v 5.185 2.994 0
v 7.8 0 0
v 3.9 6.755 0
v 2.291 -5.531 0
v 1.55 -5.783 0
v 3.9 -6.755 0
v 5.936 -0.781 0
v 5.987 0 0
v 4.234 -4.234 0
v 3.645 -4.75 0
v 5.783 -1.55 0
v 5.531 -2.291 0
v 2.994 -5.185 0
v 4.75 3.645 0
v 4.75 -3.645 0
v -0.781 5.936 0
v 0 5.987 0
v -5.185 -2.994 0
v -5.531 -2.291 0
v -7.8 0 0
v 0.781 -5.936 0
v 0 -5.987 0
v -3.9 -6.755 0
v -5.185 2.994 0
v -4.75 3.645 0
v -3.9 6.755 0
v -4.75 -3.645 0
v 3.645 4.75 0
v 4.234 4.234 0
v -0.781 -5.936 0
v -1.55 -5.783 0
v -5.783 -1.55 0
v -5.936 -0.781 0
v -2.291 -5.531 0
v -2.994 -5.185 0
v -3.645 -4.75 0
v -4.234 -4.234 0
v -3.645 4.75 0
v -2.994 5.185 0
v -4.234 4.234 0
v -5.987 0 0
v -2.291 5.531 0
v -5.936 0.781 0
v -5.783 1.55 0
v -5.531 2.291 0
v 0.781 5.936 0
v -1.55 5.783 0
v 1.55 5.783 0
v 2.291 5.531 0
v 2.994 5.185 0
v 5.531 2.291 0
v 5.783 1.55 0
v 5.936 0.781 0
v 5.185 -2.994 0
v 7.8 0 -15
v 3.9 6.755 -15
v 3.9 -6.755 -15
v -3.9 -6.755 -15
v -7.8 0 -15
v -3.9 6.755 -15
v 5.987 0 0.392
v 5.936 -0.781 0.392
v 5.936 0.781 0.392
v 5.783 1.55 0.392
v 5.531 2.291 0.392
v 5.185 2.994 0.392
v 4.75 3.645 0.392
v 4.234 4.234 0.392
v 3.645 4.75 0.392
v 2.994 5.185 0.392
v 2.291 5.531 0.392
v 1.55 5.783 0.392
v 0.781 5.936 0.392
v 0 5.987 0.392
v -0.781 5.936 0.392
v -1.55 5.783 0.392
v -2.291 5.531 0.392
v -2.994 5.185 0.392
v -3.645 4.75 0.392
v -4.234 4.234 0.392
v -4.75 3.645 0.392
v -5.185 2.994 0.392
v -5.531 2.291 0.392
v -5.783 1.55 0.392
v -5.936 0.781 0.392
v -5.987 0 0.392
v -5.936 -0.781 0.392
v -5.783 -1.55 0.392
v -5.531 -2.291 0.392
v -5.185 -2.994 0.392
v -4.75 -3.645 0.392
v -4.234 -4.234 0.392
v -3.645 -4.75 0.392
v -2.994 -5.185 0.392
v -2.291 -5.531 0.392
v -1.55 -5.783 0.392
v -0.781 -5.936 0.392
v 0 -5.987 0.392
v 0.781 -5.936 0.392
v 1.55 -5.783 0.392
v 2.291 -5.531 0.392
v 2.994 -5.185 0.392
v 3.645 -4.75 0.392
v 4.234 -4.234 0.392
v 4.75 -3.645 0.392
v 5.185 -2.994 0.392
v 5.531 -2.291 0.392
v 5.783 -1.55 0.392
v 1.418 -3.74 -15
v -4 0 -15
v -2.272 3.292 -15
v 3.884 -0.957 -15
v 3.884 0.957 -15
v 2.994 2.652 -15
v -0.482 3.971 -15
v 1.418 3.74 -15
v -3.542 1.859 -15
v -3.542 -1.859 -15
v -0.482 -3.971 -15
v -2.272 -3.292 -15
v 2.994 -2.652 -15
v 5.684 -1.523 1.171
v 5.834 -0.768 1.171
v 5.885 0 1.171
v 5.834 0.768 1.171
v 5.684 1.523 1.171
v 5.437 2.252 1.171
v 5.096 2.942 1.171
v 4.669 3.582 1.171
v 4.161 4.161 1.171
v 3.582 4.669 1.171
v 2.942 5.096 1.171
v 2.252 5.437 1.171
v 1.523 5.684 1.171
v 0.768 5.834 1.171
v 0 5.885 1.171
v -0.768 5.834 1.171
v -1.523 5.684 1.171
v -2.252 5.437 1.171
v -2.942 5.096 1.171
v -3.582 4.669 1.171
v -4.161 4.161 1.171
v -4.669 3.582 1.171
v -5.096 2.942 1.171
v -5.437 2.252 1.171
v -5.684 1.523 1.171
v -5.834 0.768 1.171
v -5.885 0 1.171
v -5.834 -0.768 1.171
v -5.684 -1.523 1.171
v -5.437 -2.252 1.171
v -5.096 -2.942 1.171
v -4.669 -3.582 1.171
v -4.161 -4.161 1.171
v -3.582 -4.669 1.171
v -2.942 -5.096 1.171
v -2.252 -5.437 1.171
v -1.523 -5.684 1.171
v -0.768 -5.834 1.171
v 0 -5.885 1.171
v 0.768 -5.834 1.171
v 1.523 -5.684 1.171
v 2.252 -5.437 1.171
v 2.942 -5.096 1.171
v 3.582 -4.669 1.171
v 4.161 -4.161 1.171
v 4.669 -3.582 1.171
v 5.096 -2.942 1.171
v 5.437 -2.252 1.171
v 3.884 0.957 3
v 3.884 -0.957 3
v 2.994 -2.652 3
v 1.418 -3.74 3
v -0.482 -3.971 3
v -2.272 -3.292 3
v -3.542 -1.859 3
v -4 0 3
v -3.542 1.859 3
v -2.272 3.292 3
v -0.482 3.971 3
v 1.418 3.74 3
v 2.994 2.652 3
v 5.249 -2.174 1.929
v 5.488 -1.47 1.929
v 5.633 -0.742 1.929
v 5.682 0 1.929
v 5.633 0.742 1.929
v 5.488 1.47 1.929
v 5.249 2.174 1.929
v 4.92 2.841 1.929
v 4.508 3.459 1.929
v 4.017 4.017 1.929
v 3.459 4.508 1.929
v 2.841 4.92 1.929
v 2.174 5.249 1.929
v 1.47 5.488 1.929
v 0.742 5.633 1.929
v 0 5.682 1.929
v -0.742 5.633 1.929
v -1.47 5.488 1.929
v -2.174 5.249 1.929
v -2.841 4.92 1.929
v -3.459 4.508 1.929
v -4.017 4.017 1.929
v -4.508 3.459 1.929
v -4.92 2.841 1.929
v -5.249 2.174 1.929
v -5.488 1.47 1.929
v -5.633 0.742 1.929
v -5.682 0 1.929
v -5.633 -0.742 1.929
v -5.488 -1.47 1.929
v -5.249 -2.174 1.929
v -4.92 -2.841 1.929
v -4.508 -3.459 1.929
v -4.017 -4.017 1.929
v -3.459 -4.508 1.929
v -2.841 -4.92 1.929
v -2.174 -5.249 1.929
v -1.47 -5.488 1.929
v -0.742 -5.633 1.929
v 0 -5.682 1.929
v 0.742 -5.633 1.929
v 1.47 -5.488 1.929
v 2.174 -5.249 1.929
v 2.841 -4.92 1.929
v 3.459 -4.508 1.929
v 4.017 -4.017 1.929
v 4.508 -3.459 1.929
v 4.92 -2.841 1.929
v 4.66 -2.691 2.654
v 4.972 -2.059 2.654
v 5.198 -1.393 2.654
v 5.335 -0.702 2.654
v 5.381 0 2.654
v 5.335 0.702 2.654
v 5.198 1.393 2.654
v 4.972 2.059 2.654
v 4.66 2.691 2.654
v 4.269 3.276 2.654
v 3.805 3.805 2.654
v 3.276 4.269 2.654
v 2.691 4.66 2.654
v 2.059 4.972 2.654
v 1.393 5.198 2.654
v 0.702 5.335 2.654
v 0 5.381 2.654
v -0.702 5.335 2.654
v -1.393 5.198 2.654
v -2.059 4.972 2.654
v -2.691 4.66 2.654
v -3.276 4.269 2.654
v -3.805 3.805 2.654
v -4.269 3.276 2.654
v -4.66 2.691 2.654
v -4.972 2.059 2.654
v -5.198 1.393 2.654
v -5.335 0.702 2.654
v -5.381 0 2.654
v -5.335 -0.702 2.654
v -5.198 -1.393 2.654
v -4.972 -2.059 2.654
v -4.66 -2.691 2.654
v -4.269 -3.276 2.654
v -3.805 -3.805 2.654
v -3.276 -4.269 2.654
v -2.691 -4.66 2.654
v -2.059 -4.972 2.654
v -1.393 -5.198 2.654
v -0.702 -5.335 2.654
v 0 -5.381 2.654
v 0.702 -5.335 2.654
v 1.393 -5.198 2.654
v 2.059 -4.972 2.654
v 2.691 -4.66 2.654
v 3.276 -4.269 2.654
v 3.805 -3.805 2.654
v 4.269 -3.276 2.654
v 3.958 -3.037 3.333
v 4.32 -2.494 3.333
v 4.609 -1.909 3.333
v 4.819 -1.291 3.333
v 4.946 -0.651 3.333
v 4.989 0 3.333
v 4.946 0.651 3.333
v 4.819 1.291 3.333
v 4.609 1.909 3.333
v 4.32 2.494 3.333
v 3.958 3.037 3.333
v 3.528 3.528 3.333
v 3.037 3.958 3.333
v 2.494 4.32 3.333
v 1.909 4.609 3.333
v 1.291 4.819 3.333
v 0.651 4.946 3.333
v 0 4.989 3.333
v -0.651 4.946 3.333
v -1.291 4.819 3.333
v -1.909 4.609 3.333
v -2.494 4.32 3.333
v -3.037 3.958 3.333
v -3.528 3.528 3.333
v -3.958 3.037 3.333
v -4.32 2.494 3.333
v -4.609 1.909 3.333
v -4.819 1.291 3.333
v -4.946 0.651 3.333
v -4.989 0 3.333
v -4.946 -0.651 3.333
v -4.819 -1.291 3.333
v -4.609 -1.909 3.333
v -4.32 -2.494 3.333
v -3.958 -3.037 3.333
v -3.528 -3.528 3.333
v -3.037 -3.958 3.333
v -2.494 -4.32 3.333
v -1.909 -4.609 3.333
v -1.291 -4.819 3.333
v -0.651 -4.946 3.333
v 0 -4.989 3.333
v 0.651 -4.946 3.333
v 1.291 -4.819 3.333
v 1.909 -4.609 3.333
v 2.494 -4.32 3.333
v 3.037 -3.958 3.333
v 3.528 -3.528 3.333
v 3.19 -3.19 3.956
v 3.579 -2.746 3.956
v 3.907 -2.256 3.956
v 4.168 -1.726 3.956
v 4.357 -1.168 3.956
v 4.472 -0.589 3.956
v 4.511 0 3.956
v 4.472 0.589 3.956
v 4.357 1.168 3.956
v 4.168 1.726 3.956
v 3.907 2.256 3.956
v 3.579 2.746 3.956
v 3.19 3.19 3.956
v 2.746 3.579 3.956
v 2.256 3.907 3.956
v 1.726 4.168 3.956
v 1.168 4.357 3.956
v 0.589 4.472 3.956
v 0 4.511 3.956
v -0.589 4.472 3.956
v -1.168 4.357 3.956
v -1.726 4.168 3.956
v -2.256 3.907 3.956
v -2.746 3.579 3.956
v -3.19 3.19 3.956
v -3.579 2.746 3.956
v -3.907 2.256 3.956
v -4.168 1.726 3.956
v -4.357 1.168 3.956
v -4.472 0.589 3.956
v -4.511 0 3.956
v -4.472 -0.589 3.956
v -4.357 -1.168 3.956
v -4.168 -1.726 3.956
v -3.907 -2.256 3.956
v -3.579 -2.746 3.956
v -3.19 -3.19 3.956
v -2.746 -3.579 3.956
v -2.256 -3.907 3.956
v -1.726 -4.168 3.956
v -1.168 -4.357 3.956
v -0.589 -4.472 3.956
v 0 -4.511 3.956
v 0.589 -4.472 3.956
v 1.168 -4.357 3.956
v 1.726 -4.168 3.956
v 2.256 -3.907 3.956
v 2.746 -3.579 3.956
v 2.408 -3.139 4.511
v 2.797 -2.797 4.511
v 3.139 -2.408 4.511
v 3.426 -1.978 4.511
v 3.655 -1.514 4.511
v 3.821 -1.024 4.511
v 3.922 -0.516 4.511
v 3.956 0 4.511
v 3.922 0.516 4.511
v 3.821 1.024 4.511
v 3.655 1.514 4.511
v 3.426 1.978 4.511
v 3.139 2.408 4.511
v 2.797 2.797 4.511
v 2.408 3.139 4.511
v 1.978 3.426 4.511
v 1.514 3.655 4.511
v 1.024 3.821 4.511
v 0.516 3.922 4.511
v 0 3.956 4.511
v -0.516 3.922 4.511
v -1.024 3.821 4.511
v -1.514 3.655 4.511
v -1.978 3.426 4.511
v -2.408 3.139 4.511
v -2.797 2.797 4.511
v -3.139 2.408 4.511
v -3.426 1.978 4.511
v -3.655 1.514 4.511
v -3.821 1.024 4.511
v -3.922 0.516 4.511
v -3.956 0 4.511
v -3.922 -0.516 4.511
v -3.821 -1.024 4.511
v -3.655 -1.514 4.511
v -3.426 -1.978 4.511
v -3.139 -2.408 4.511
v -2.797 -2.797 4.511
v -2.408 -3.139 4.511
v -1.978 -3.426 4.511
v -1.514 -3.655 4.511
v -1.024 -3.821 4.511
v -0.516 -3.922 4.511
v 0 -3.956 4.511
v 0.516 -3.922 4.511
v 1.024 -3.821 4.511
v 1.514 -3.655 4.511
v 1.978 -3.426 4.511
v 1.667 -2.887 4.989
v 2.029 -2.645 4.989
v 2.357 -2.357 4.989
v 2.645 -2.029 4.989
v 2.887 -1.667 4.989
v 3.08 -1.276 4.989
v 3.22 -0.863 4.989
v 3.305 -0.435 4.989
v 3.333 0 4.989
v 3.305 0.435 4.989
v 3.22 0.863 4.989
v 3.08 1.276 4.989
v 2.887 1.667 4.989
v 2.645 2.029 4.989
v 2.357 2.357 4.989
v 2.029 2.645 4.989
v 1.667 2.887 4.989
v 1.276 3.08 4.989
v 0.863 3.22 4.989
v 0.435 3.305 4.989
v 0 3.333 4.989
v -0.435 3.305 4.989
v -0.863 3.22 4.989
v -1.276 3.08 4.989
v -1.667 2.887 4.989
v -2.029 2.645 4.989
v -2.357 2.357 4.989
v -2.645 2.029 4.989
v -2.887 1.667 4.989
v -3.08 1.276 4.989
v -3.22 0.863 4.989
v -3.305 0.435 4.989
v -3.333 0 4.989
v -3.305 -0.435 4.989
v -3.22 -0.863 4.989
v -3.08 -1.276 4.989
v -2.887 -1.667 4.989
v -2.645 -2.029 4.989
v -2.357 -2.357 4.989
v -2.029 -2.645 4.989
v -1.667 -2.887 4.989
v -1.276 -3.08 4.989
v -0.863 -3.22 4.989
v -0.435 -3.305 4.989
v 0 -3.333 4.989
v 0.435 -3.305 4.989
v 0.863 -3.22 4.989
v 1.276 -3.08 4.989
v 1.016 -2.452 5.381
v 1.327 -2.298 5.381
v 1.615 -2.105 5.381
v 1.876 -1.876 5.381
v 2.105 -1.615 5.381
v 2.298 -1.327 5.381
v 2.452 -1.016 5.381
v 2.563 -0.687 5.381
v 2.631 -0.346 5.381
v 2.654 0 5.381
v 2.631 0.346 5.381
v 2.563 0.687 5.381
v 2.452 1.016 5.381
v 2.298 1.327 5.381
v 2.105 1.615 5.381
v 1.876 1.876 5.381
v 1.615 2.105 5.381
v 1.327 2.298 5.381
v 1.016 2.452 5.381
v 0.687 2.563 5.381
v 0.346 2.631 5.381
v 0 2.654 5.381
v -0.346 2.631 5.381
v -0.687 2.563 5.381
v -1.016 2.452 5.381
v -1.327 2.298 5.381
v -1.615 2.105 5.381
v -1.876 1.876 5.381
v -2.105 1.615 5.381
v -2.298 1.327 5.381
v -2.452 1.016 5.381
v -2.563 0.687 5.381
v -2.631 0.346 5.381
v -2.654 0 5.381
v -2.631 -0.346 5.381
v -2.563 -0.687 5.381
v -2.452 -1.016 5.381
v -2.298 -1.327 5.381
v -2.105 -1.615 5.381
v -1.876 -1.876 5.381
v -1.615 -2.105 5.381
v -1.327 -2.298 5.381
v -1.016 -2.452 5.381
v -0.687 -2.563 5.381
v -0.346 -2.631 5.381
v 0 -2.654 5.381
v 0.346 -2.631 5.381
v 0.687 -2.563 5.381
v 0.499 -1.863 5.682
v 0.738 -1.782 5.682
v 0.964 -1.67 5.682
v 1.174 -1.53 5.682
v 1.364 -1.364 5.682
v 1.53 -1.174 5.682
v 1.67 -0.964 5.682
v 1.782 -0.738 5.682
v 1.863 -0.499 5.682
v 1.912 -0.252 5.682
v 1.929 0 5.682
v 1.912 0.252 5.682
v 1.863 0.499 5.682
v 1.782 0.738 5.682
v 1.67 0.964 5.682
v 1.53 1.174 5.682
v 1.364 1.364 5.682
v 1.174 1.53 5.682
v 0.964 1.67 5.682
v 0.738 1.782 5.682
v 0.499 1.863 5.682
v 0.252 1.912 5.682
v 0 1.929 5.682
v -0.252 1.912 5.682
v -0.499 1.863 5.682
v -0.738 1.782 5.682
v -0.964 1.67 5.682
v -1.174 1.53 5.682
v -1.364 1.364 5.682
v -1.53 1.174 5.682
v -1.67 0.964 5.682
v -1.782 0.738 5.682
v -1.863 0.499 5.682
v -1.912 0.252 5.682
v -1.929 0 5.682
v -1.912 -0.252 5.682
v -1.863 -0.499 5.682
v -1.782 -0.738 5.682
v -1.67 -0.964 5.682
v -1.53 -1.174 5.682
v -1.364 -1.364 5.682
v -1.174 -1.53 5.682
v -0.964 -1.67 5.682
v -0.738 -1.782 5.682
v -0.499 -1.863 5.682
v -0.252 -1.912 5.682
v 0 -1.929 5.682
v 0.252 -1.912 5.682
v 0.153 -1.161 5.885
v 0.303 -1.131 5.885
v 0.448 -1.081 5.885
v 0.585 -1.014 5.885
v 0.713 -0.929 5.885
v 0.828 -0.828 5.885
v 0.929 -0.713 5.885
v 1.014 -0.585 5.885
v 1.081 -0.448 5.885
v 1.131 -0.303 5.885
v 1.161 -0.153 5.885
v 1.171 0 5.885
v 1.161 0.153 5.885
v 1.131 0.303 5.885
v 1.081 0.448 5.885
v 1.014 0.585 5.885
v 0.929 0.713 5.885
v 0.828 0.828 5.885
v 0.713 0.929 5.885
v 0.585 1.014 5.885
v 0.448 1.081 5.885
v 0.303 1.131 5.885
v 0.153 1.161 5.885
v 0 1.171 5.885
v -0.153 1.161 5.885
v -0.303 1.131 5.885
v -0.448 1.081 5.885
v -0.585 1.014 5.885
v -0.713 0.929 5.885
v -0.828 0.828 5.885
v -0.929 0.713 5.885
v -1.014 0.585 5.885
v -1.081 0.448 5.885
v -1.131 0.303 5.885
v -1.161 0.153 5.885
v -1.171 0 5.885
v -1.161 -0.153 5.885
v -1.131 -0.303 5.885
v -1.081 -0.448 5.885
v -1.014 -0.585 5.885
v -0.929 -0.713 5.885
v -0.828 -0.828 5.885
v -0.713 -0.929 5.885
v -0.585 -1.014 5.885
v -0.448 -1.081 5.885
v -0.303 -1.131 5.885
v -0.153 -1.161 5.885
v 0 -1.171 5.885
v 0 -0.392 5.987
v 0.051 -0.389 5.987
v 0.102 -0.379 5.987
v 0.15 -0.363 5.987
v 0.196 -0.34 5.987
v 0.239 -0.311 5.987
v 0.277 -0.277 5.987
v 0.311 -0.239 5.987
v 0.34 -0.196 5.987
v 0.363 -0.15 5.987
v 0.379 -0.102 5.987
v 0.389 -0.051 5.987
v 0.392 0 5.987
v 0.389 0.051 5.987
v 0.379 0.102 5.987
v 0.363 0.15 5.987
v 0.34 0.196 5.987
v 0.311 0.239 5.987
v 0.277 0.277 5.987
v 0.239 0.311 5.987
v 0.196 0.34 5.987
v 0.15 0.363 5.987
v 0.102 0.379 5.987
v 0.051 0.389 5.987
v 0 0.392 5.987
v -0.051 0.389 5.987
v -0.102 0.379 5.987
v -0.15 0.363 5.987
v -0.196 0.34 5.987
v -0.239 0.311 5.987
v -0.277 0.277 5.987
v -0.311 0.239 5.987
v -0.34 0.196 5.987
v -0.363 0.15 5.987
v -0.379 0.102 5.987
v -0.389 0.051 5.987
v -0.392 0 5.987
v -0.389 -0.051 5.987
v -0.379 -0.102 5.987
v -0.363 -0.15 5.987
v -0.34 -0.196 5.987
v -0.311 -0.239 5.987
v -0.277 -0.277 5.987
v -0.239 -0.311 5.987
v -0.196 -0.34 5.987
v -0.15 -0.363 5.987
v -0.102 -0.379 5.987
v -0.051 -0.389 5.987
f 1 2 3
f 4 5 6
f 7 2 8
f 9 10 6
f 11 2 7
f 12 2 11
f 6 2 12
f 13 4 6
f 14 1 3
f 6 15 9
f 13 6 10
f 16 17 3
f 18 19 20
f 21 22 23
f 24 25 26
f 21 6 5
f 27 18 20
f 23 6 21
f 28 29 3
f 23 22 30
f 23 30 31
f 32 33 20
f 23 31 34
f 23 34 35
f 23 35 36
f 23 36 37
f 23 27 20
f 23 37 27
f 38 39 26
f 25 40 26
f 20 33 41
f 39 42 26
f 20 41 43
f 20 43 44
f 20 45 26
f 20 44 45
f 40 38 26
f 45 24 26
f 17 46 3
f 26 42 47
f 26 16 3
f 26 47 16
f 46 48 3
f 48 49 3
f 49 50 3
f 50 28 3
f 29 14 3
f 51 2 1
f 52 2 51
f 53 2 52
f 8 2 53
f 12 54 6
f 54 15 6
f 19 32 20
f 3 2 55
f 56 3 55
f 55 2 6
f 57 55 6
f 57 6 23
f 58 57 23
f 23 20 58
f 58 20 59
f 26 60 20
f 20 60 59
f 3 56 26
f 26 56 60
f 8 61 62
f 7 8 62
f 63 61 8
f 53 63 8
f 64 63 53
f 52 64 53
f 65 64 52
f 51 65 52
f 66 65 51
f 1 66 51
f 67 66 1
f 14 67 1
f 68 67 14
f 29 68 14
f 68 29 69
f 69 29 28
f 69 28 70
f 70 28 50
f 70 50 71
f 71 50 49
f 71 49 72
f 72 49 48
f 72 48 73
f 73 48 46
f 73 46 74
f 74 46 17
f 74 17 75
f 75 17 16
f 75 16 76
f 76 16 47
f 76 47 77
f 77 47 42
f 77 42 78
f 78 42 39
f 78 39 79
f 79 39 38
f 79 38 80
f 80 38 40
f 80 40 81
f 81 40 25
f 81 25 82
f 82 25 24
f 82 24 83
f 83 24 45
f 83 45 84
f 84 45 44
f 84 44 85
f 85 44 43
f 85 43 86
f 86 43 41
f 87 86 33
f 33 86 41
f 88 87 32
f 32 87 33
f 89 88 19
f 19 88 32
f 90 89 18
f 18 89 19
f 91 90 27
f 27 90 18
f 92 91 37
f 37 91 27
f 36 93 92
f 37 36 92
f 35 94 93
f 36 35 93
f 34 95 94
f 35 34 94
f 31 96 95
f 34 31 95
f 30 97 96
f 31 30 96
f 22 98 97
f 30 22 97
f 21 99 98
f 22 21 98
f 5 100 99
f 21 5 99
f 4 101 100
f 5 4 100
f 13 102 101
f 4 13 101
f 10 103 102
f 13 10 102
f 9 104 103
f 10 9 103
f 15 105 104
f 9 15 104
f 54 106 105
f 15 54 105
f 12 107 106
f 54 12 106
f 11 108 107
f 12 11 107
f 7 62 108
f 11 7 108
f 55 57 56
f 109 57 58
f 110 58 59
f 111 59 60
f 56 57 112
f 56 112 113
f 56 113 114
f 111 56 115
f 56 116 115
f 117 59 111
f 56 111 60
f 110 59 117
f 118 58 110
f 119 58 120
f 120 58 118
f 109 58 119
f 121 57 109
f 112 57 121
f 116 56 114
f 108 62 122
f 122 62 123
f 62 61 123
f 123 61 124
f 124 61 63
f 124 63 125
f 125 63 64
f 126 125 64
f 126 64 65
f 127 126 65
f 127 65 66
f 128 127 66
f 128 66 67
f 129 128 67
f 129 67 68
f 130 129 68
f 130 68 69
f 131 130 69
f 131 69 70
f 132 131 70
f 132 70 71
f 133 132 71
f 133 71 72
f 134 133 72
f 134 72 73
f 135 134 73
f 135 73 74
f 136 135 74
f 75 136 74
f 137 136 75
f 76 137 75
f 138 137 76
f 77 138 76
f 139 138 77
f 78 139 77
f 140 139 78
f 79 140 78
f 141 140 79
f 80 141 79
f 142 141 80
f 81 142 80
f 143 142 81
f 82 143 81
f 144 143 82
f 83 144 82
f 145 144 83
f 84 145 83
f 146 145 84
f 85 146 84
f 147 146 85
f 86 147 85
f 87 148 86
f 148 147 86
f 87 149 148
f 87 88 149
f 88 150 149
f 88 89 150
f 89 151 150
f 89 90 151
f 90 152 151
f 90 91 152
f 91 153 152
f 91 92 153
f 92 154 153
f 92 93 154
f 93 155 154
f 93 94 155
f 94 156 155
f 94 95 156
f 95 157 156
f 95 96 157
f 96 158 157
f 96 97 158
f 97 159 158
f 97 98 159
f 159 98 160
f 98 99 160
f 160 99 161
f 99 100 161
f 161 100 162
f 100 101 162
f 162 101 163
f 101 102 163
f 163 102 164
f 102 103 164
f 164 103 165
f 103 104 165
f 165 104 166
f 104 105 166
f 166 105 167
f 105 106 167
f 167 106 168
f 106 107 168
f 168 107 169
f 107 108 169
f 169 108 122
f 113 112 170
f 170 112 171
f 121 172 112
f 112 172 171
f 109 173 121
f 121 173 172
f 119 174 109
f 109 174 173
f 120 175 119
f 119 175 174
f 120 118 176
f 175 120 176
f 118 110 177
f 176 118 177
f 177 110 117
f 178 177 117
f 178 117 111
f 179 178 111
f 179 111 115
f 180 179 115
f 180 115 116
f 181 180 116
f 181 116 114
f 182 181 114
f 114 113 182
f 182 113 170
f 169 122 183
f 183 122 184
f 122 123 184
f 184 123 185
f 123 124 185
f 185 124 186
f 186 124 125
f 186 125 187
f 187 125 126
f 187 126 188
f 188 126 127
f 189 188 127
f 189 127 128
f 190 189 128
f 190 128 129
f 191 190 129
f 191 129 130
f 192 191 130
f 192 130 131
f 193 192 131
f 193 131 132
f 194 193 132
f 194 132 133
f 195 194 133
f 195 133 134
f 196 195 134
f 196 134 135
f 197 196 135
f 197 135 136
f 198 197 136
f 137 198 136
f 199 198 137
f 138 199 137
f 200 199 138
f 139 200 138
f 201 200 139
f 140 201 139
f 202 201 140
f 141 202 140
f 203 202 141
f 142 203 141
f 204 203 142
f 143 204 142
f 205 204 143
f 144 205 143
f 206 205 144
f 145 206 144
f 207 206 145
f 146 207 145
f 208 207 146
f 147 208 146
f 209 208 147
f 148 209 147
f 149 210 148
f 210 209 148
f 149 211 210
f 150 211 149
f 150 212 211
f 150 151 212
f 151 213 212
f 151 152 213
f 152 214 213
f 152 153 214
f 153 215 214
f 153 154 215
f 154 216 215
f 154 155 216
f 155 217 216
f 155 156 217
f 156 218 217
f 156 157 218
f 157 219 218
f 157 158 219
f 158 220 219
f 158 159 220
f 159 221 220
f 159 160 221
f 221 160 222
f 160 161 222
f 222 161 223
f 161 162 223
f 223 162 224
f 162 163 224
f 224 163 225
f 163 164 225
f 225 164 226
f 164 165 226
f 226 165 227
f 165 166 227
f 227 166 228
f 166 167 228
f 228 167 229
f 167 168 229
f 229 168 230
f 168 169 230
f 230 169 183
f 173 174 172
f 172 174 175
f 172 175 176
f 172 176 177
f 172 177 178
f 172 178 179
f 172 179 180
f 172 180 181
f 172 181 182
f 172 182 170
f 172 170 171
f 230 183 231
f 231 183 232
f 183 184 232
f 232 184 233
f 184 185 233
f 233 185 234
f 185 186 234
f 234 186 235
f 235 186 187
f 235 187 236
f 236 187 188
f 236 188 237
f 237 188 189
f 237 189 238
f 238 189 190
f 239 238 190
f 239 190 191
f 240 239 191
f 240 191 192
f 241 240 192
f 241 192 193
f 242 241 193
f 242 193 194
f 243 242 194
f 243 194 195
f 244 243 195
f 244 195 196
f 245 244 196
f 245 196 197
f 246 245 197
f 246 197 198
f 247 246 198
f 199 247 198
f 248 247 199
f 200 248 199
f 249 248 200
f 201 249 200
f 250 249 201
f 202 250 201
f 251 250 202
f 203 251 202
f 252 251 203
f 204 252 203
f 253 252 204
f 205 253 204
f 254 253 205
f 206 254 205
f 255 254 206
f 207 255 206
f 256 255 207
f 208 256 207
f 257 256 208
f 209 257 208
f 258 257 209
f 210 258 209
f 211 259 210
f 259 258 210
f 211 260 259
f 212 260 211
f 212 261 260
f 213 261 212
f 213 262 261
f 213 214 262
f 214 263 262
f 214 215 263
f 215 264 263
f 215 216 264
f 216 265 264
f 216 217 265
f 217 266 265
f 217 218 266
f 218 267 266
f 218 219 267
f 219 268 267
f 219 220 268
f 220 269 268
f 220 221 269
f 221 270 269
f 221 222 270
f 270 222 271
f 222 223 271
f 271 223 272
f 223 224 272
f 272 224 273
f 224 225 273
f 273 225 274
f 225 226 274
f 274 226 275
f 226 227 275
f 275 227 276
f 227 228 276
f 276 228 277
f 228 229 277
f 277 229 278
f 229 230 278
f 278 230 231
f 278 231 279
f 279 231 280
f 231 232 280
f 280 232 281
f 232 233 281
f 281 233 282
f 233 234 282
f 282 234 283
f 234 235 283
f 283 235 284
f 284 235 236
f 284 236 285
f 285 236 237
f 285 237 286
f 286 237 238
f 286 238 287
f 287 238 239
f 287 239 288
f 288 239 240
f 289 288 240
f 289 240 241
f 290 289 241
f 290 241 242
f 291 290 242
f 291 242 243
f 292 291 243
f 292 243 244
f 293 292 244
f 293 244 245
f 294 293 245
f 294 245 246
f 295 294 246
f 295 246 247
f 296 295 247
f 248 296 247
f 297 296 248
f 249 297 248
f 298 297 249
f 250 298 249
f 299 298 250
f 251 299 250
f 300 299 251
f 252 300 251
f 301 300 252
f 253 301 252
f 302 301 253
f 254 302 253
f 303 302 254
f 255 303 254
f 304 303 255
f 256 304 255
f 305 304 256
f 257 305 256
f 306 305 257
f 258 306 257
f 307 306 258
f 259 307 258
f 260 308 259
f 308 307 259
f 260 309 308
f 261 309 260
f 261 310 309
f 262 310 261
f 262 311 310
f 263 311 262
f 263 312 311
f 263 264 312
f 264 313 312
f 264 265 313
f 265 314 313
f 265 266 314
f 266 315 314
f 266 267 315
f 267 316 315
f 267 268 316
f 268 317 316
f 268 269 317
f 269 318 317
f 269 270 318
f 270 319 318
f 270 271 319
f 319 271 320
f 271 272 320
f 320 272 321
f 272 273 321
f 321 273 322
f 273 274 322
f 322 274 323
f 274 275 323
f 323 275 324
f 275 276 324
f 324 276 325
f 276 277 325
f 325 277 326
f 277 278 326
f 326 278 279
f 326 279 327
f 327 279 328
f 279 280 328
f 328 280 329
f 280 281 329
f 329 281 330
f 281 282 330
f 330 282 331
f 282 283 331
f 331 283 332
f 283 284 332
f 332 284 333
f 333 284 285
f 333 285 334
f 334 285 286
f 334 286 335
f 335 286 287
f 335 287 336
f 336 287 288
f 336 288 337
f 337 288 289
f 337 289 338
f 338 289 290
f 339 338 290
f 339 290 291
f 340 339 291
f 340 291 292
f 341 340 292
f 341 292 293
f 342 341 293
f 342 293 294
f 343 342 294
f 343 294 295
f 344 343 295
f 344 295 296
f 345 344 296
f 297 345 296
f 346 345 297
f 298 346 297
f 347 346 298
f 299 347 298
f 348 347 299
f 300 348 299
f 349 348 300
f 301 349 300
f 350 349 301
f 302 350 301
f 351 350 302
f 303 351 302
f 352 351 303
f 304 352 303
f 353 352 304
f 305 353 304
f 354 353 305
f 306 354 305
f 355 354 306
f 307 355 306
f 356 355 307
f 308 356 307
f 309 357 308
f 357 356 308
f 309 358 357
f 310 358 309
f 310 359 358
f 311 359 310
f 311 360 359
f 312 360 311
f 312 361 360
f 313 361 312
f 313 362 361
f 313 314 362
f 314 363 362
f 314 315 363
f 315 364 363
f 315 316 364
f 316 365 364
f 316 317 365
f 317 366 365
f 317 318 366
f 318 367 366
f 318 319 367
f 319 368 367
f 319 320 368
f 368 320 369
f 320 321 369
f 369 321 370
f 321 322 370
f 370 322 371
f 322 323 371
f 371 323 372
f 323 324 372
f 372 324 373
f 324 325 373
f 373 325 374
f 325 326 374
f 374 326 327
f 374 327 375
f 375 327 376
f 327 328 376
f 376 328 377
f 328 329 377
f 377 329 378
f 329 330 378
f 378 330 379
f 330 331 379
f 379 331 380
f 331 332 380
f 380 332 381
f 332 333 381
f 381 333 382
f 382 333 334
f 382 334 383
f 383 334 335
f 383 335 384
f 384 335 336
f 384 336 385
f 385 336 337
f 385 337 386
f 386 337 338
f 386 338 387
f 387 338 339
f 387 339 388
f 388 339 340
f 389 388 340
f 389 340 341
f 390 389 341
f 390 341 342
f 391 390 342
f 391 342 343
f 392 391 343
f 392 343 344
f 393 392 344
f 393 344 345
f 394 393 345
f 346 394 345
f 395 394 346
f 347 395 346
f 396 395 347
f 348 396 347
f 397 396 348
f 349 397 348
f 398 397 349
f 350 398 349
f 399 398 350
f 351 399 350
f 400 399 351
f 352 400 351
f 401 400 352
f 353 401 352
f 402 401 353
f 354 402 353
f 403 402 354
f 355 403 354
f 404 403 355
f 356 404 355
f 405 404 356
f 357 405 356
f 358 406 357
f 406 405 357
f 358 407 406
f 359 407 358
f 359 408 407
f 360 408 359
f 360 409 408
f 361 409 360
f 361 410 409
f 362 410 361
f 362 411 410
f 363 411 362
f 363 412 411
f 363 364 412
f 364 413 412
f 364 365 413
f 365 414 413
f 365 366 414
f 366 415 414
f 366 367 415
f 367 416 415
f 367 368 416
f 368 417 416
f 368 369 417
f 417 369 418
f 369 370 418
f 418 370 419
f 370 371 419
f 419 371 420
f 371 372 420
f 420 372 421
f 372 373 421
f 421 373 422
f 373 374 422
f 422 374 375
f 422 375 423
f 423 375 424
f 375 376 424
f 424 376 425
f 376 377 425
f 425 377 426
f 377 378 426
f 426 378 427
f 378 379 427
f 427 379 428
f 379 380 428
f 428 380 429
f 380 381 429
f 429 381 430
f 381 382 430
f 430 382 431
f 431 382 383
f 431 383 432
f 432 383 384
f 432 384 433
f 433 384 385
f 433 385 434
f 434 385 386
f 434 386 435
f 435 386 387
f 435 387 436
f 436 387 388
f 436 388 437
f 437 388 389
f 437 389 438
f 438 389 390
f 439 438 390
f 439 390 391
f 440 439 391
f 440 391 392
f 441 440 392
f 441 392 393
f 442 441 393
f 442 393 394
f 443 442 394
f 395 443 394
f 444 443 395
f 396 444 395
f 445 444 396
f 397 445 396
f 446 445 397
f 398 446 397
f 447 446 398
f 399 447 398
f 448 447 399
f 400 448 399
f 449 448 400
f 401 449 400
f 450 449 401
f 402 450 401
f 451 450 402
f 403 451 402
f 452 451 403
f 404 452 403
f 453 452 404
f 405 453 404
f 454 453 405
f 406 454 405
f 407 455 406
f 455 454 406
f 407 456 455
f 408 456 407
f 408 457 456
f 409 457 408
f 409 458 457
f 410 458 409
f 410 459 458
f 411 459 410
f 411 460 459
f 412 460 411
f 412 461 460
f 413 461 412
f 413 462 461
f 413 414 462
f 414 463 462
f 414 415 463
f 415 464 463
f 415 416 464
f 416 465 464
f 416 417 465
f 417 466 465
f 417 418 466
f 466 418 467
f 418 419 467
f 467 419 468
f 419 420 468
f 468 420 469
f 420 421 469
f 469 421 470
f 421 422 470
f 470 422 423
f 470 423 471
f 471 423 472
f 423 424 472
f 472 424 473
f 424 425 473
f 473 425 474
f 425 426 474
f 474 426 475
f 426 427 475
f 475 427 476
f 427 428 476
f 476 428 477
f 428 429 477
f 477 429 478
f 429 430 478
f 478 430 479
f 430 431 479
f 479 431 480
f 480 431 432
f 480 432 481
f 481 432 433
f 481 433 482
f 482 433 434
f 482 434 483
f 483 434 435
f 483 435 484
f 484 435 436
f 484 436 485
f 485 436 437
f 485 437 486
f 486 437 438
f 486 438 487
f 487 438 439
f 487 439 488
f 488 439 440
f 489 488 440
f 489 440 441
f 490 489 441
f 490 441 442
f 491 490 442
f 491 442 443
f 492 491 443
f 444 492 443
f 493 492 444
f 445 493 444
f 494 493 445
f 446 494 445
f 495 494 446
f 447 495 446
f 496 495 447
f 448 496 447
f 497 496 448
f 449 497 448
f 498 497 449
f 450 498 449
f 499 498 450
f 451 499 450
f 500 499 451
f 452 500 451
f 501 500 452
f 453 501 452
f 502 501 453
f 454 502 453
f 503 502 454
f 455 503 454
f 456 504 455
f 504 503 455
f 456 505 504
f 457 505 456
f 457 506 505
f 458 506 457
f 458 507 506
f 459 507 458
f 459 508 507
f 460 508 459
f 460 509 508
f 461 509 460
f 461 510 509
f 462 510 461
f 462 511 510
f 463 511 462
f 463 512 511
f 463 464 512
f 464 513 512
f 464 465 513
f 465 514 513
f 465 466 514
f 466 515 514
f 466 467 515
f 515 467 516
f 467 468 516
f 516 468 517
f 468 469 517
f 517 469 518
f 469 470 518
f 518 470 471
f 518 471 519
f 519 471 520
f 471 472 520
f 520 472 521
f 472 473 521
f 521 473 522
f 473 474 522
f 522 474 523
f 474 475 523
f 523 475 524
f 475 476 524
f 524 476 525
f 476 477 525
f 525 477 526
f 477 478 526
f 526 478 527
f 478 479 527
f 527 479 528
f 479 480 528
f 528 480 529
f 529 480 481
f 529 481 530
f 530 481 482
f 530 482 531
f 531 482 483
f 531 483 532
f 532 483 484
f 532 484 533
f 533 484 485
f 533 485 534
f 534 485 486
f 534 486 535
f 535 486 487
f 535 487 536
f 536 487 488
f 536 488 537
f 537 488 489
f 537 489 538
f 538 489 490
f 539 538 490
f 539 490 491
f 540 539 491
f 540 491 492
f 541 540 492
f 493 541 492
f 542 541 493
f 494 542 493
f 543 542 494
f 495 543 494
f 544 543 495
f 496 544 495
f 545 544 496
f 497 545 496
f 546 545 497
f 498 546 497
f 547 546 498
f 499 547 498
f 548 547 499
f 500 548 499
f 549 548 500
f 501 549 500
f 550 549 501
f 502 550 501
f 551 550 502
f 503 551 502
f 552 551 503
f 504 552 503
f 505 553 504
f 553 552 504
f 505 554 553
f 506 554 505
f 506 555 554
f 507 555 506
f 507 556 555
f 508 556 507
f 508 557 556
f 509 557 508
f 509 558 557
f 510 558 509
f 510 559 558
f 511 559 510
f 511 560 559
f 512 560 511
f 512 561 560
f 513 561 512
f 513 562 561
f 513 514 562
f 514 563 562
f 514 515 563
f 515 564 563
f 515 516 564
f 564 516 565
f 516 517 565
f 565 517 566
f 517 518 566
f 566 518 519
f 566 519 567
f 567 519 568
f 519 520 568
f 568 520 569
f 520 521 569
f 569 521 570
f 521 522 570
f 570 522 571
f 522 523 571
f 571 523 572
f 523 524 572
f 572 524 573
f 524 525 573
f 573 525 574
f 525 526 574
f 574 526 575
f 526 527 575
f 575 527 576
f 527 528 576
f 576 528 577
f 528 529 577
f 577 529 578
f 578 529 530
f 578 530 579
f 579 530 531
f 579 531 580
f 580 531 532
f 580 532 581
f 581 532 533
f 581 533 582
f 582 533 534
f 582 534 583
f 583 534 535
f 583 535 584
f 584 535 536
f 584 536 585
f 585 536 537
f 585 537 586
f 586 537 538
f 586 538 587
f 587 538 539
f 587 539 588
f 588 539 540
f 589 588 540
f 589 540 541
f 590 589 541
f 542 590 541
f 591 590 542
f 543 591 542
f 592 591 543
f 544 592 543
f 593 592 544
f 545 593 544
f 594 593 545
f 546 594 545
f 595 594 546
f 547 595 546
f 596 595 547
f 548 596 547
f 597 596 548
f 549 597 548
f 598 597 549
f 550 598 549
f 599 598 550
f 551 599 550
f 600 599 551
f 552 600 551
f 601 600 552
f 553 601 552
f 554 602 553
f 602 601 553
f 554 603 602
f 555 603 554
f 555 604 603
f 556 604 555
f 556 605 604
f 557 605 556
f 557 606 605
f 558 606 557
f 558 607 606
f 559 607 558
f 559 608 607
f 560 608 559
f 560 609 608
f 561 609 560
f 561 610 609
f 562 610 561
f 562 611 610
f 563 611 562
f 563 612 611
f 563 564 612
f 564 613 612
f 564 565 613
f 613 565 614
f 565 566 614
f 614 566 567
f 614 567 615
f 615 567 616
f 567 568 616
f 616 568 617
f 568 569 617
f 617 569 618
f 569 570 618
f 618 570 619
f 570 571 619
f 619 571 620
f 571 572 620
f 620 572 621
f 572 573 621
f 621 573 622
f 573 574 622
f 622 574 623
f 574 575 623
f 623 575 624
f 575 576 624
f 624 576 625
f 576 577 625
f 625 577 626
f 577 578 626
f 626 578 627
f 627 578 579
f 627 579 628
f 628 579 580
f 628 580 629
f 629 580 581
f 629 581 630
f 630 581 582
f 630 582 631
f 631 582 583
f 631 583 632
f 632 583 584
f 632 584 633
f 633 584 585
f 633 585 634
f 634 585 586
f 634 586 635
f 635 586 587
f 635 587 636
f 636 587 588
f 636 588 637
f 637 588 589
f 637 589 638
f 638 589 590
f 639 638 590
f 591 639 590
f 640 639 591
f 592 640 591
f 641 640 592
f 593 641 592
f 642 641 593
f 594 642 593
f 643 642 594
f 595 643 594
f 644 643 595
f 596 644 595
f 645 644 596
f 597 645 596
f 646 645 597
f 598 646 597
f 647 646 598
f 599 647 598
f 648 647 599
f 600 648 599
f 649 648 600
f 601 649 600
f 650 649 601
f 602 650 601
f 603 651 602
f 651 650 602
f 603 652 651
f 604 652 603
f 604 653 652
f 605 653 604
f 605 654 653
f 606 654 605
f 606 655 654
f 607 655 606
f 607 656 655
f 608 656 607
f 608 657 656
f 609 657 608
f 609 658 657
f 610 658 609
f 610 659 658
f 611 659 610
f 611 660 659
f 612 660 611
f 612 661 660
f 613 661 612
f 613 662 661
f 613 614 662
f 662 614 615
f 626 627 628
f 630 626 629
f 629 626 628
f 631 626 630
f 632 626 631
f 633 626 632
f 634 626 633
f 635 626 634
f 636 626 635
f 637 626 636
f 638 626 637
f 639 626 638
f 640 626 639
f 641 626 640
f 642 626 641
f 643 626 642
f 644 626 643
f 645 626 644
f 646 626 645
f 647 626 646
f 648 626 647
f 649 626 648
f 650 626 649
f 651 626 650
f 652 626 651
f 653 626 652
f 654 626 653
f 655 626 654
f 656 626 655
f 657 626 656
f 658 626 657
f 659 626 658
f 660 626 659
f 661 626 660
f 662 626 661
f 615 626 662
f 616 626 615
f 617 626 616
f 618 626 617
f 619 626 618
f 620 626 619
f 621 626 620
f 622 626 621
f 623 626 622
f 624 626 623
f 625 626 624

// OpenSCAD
// file: inc/functions.scad
// PRUSA iteration3
// Functions used in many files
// GNU GPL v3
// Josef Průša <josefprusa@me.com>
// Václav 'ax' Hůla <axtheb@gmail.com>
// Vlnofka <>
// http://www.reprap.org/wiki/Prusa_Mendel
// http://github.com/prusajr/PrusaMendel

module roundcorner(diameter){
	difference(){
		cube(size = [diameter,diameter,99], center = false);
		translate(v = [diameter, diameter, 0]) cylinder(h = 100, r=diameter, center=true);
	}
}
module nut(d,h,horizontal=true){
    cornerdiameter =  (d / 2) / cos (180 / 6);
    cylinder(h = h, r = cornerdiameter, $fn = 6);
    if(horizontal){
        for(i = [1:6]){
            rotate([0,0,60*i]) translate([-cornerdiameter-0.2,0,0]) rotate([0,0,-45]) cube([2,2,h]);
        }
    }
}

// Based on nophead research
module polyhole(d, h, center=false) {
    n = max(round(2 * d),3);
    rotate([0,0,180])
        cylinder(h = h, r = (d / 2) / cos (180 / n), $fn = n);
}

// make it interchangeable between this and cylinder
module cylinder_poly(r, h, center=false){
    polyhole(d=r*2, h=h, center=center);
}

module fillet(radius, height=100, $fn=0) {
    //this creates acutal fillet
    translate([-radius, -radius, -height/2-0.01])
        difference() {
            cube([radius*2, radius*2, height+0.02]);
            cylinder(r=radius, h=height+0.02, $fn=$fn);
        }
}

module cube_fillet(size, radius=-1, vertical=[3,3,3,3], top=[0,0,0,0], bottom=[0,0,0,0], center=false, $fn=0){
    //
    if (center) {
        cube_fillet_inside(size, radius, vertical, top, bottom, $fn);
    } else {
        translate([size[0]/2, size[1]/2, size[2]/2])
            cube_fillet_inside(size, radius, vertical, top, bottom, $fn);
    }
}

module cube_negative_fillet(size, radius=-1, vertical=[3,3,3,3], top=[0,0,0,0], bottom=[0,0,0,0], $fn=0){

    j=[1,0,1,0];

    for (i=[0:3]) {
        if (radius > -1) {
            rotate([0, 0, 90*i]) translate([size[1-j[i]]/2, size[j[i]]/2, 0]) fillet(radius, size[2], $fn=$fn);
        } else {
            rotate([0, 0, 90*i]) translate([size[1-j[i]]/2, size[j[i]]/2, 0]) fillet(vertical[i], size[2], $fn=$fn);
        }
        rotate([90*i, -90, 0]) translate([size[2]/2, size[j[i]]/2, 0 ]) fillet(top[i], size[1-j[i]], $fn=$fn);
        rotate([90*(4-i), 90, 0]) translate([size[2]/2, size[j[i]]/2, 0]) fillet(bottom[i], size[1-j[i]], $fn=$fn);

    }
}

module cube_fillet_inside(size, radius=-1, vertical=[3,3,3,3], top=[0,0,0,0], bottom=[0,0,0,0], $fn=0){
    //makes CENTERED cube with round corners
    // if you give it radius, it will fillet vertical corners.
    //othervise use vertical, top, bottom arrays
    //when viewed from top, it starts in upper right corner (+x,+y quadrant) , goes counterclockwise
    //top/bottom fillet starts in direction of Y axis and goes CCW too


    if (radius == 0) {
        cube(size, center=true);
    } else {
        difference() {
            cube(size, center=true);
            cube_negative_fillet(size, radius, vertical, top, bottom, $fn);
        }
    }
}


module nema17(places=[1,1,1,1], size=15.5, h=10, holes=false, shadow=false, $fn=24){
    for (i=[0:3]) {
        if (places[i] == 1) {
            rotate([0, 0, 90*i]) translate([size, size, 0]) {
                if (holes) {
                    #rotate([0, 0, -90*i])  translate([0,0,-10]) screw(r=1.7, slant=false, head_drop=13, $fn=$fn, h=h+12);
                } else {
                    rotate([0, 0, -90*i]) cylinder(h=h, r=5.5, $fn=$fn);
                }
            }
        }
    }
    if (shadow != false) {
        %translate ([0, 0, shadow+21+3]) cube([42,42,42], center = true);
    //flange
        %translate ([0, 0, shadow+21+3-21-1]) cylinder(r=11,h=2, center = true, $fn=20);
    //shaft
        %translate ([0, 0, shadow+21+3-21-7]) cylinder(r=2.5,h=14, center = true);
    }
}

module screw(h=20, r=2, r_head=3.5, head_drop=0, slant=true, poly=false, $fn=0){
    //makes screw with head
    //for substraction as screw hole
    if (poly) {
        cylinder_poly(h=h, r=r, $fn=$fn);
    } else {
        cylinder(h=h, r=r, $fn=$fn);
    }
    if (slant) {
        translate([0, 0, head_drop-0.01]) cylinder(h=r_head, r2=0, r1=r_head, $fn=$fn);
    }

    if (head_drop > 0) {
        translate([0, 0, -0.01]) cylinder(h=head_drop+0.01, r=r_head, $fn=$fn);
    }
}
module screw_cylinder(r_head=5.25,r=3.25,head_drop=6.2,slant=false){
	screw(r_head=r_head,head_drop=head_drop,r=r, slant=slant);

}

//screw_cylinder();
//cube_fillet([10,20,30], vertical=[3,2,0,0], top=[3,2,0,5], bottom=[3,2,0,5]);
//cube_fillet([10,20,30], radius=2, top=[7,2,7,2]);
// file: inc/metric.scad
// PRUSA iteration3
// Default metric sizes
// GNU GPL v3
// Josef Průša <josefprusa@me.com>
// http://www.reprap.org/wiki/Prusa_Mendel
// http://github.com/prusajr/PrusaMendel

// DONT CHANGE THIS FILE! ALTER VALUES IN CONFIGURATION.SCAD INSTEAD

// RODS

threaded_rod_diameter = 8.7;
threaded_rod_diameter_horizontal = 8.7;
smooth_bar_diameter = 8;
smooth_bar_diameter_horizontal = 8.8;

// Nuts and bolts

m8_diameter = 9;
m8_nut_diameter = 14.1;

m4_diameter = 4.5;
m4_nut_diameter = 9;

m3_diameter = 3.6;
m3_nut_diameter = 5.3;
m3_nut_diameter_horizontal = 6.1;

// Bushing holder

bushing_core_diameter = smooth_bar_diameter;
bushing_material_thickness = 1;

// Motors

motor_shaft = 5.5;
// file: configuration.scad
// PRUSA iteration3
// Configuration file
// GNU GPL v3
// Josef Průša <josefprusa@me.com>
// Václav 'ax' Hůla <axtheb@gmail.com>
// http://www.reprap.org/wiki/Prusa_Mendel
// http://github.com/prusajr/PrusaMendel

// PLEASE SELECT ONE OF THE CONFIGURATIONS BELOW
// BY UN-COMMENTING IT

// Uncomment for metric settings
// METRIC METRIC METRIC METRIC METRIC METRIC METRIC METRIC 

include <inc/metric.scad>;

// Custom settings here, tailor to your supplies and print settings

// Select your belt type ******************************************************

//T2.5
//belt_tooth_distance = 2.5;
//belt_tooth_ratio = 0.5;

//T5 (strongly discouraged)
belt_tooth_distance = 5;
belt_tooth_ratio = 0.75;

//HTD3
//belt_tooth_distance = 3;
//belt_tooth_ratio = 0.75;

//MXL
//belt_tooth_distance = 2.032;
//belt_tooth_ratio = 0.64;

// Choose bearing/bushing configuration ***************************************

//Choose from:

// 0 = Z as lm[e]8uu, X and Y bushings
// 1 = all bushings
// 2 = all bearings [default. Do not change unless you really know what you are doing]
// DO NOT OFFER 0 or 1 VARIANTS FOR SALE. We really mean that. In the long run it hurts everyone.

bearing_choice = 2;

// Bushing version
// 0 = square igus housings. By igus we mean JFM-0810-10 or GFM-0810-10
// 1 = round igus (works better if printed precisely)
// 2 = bronze self-aligning bushings
bushing_type = 0;

//Bearing version
// 0 = default lm8uu
// 1 = lme8uu
bearing_type = 0;

// Select idler bearing size **************************************************

// 0 = 608 [standard skate bearings]
// 1 = 624 [roughly same diameter as pulley, makes belt parallel so its prettier]

idler_bearing = 0;

// Thickness of the XZ plate board
board_thickness = 12;

//Layer height * width over thickness. Used for idler sleeve
single_wall_width = 0.3*2.2;

// END of custom settings


// You are not supposed to change this
board_to_xz_distance = 26;
xaxis_rod_distance = 45;
carriage_l = 74;
carriage_hole_to_side = 5;
carriage_hole_height = 4;

//calculated from settings

idler_size = (idler_bearing == 0) ? 22 : 13;

//use 4.5 for 608, 2.5 for 624
idler_size_inner_r = (idler_bearing == 0) ? 4.5 : 2.5;

idler_width = (idler_bearing == 0) ? 9 : 5;

// CHANGE ONLY THE STUFF YOU KNOW
// IT WILL REPLACE DEFAULT SETTING

// RODS

// threaded_rod_diameter = 0;
// threaded_rod_diameter_horizontal = 0;
// smooth_bar_diameter = 0;
// smooth_bar_diameter_horizontal = 0;

// Nuts and bolts

// m8_diameter = 0;
// m8_nut_diameter = 0;

// m4_diameter = 0;
// m4_nut_diameter = 0;

// m3_diameter = 0;
// m3_nut_diameter = 0;

// Bushing holder

// bushing_core_diameter = smooth_bar_diameter;
// bushing_material_thickness = 0;

///counted stuff
m3_nut_diameter_bigger = ((m3_nut_diameter  / 2) / cos (180 / 6))*2;

// functions
include <inc/functions.scad>


// These constants define the geometry of the complete-printer.scad

//x_smooth_rod_length=325;
//y_smooth_rod_length=405;
//z_smooth_rod_length=235;
bed_x_size=225;
bed_y_size=225;

x_smooth_rod_length=450+board_thickness*2+10; // 492 for 16mm thickness; 484 for 12mm thickness
y_smooth_rod_length=470;
z_smooth_rod_length=405;  
bed_x_size=225;
bed_y_size=225;
// main file
include <configuration.scad>

rotate([0,180,0])y_foot();

module y_foot(){
	difference(){
		union(){
			cylinder(r=15.6/2,h=15,$fn=6);
			sphere(r=6,$fn=48);
		}
		translate([0,0,-3])cylinder(r=4,h=20);
	}
}
